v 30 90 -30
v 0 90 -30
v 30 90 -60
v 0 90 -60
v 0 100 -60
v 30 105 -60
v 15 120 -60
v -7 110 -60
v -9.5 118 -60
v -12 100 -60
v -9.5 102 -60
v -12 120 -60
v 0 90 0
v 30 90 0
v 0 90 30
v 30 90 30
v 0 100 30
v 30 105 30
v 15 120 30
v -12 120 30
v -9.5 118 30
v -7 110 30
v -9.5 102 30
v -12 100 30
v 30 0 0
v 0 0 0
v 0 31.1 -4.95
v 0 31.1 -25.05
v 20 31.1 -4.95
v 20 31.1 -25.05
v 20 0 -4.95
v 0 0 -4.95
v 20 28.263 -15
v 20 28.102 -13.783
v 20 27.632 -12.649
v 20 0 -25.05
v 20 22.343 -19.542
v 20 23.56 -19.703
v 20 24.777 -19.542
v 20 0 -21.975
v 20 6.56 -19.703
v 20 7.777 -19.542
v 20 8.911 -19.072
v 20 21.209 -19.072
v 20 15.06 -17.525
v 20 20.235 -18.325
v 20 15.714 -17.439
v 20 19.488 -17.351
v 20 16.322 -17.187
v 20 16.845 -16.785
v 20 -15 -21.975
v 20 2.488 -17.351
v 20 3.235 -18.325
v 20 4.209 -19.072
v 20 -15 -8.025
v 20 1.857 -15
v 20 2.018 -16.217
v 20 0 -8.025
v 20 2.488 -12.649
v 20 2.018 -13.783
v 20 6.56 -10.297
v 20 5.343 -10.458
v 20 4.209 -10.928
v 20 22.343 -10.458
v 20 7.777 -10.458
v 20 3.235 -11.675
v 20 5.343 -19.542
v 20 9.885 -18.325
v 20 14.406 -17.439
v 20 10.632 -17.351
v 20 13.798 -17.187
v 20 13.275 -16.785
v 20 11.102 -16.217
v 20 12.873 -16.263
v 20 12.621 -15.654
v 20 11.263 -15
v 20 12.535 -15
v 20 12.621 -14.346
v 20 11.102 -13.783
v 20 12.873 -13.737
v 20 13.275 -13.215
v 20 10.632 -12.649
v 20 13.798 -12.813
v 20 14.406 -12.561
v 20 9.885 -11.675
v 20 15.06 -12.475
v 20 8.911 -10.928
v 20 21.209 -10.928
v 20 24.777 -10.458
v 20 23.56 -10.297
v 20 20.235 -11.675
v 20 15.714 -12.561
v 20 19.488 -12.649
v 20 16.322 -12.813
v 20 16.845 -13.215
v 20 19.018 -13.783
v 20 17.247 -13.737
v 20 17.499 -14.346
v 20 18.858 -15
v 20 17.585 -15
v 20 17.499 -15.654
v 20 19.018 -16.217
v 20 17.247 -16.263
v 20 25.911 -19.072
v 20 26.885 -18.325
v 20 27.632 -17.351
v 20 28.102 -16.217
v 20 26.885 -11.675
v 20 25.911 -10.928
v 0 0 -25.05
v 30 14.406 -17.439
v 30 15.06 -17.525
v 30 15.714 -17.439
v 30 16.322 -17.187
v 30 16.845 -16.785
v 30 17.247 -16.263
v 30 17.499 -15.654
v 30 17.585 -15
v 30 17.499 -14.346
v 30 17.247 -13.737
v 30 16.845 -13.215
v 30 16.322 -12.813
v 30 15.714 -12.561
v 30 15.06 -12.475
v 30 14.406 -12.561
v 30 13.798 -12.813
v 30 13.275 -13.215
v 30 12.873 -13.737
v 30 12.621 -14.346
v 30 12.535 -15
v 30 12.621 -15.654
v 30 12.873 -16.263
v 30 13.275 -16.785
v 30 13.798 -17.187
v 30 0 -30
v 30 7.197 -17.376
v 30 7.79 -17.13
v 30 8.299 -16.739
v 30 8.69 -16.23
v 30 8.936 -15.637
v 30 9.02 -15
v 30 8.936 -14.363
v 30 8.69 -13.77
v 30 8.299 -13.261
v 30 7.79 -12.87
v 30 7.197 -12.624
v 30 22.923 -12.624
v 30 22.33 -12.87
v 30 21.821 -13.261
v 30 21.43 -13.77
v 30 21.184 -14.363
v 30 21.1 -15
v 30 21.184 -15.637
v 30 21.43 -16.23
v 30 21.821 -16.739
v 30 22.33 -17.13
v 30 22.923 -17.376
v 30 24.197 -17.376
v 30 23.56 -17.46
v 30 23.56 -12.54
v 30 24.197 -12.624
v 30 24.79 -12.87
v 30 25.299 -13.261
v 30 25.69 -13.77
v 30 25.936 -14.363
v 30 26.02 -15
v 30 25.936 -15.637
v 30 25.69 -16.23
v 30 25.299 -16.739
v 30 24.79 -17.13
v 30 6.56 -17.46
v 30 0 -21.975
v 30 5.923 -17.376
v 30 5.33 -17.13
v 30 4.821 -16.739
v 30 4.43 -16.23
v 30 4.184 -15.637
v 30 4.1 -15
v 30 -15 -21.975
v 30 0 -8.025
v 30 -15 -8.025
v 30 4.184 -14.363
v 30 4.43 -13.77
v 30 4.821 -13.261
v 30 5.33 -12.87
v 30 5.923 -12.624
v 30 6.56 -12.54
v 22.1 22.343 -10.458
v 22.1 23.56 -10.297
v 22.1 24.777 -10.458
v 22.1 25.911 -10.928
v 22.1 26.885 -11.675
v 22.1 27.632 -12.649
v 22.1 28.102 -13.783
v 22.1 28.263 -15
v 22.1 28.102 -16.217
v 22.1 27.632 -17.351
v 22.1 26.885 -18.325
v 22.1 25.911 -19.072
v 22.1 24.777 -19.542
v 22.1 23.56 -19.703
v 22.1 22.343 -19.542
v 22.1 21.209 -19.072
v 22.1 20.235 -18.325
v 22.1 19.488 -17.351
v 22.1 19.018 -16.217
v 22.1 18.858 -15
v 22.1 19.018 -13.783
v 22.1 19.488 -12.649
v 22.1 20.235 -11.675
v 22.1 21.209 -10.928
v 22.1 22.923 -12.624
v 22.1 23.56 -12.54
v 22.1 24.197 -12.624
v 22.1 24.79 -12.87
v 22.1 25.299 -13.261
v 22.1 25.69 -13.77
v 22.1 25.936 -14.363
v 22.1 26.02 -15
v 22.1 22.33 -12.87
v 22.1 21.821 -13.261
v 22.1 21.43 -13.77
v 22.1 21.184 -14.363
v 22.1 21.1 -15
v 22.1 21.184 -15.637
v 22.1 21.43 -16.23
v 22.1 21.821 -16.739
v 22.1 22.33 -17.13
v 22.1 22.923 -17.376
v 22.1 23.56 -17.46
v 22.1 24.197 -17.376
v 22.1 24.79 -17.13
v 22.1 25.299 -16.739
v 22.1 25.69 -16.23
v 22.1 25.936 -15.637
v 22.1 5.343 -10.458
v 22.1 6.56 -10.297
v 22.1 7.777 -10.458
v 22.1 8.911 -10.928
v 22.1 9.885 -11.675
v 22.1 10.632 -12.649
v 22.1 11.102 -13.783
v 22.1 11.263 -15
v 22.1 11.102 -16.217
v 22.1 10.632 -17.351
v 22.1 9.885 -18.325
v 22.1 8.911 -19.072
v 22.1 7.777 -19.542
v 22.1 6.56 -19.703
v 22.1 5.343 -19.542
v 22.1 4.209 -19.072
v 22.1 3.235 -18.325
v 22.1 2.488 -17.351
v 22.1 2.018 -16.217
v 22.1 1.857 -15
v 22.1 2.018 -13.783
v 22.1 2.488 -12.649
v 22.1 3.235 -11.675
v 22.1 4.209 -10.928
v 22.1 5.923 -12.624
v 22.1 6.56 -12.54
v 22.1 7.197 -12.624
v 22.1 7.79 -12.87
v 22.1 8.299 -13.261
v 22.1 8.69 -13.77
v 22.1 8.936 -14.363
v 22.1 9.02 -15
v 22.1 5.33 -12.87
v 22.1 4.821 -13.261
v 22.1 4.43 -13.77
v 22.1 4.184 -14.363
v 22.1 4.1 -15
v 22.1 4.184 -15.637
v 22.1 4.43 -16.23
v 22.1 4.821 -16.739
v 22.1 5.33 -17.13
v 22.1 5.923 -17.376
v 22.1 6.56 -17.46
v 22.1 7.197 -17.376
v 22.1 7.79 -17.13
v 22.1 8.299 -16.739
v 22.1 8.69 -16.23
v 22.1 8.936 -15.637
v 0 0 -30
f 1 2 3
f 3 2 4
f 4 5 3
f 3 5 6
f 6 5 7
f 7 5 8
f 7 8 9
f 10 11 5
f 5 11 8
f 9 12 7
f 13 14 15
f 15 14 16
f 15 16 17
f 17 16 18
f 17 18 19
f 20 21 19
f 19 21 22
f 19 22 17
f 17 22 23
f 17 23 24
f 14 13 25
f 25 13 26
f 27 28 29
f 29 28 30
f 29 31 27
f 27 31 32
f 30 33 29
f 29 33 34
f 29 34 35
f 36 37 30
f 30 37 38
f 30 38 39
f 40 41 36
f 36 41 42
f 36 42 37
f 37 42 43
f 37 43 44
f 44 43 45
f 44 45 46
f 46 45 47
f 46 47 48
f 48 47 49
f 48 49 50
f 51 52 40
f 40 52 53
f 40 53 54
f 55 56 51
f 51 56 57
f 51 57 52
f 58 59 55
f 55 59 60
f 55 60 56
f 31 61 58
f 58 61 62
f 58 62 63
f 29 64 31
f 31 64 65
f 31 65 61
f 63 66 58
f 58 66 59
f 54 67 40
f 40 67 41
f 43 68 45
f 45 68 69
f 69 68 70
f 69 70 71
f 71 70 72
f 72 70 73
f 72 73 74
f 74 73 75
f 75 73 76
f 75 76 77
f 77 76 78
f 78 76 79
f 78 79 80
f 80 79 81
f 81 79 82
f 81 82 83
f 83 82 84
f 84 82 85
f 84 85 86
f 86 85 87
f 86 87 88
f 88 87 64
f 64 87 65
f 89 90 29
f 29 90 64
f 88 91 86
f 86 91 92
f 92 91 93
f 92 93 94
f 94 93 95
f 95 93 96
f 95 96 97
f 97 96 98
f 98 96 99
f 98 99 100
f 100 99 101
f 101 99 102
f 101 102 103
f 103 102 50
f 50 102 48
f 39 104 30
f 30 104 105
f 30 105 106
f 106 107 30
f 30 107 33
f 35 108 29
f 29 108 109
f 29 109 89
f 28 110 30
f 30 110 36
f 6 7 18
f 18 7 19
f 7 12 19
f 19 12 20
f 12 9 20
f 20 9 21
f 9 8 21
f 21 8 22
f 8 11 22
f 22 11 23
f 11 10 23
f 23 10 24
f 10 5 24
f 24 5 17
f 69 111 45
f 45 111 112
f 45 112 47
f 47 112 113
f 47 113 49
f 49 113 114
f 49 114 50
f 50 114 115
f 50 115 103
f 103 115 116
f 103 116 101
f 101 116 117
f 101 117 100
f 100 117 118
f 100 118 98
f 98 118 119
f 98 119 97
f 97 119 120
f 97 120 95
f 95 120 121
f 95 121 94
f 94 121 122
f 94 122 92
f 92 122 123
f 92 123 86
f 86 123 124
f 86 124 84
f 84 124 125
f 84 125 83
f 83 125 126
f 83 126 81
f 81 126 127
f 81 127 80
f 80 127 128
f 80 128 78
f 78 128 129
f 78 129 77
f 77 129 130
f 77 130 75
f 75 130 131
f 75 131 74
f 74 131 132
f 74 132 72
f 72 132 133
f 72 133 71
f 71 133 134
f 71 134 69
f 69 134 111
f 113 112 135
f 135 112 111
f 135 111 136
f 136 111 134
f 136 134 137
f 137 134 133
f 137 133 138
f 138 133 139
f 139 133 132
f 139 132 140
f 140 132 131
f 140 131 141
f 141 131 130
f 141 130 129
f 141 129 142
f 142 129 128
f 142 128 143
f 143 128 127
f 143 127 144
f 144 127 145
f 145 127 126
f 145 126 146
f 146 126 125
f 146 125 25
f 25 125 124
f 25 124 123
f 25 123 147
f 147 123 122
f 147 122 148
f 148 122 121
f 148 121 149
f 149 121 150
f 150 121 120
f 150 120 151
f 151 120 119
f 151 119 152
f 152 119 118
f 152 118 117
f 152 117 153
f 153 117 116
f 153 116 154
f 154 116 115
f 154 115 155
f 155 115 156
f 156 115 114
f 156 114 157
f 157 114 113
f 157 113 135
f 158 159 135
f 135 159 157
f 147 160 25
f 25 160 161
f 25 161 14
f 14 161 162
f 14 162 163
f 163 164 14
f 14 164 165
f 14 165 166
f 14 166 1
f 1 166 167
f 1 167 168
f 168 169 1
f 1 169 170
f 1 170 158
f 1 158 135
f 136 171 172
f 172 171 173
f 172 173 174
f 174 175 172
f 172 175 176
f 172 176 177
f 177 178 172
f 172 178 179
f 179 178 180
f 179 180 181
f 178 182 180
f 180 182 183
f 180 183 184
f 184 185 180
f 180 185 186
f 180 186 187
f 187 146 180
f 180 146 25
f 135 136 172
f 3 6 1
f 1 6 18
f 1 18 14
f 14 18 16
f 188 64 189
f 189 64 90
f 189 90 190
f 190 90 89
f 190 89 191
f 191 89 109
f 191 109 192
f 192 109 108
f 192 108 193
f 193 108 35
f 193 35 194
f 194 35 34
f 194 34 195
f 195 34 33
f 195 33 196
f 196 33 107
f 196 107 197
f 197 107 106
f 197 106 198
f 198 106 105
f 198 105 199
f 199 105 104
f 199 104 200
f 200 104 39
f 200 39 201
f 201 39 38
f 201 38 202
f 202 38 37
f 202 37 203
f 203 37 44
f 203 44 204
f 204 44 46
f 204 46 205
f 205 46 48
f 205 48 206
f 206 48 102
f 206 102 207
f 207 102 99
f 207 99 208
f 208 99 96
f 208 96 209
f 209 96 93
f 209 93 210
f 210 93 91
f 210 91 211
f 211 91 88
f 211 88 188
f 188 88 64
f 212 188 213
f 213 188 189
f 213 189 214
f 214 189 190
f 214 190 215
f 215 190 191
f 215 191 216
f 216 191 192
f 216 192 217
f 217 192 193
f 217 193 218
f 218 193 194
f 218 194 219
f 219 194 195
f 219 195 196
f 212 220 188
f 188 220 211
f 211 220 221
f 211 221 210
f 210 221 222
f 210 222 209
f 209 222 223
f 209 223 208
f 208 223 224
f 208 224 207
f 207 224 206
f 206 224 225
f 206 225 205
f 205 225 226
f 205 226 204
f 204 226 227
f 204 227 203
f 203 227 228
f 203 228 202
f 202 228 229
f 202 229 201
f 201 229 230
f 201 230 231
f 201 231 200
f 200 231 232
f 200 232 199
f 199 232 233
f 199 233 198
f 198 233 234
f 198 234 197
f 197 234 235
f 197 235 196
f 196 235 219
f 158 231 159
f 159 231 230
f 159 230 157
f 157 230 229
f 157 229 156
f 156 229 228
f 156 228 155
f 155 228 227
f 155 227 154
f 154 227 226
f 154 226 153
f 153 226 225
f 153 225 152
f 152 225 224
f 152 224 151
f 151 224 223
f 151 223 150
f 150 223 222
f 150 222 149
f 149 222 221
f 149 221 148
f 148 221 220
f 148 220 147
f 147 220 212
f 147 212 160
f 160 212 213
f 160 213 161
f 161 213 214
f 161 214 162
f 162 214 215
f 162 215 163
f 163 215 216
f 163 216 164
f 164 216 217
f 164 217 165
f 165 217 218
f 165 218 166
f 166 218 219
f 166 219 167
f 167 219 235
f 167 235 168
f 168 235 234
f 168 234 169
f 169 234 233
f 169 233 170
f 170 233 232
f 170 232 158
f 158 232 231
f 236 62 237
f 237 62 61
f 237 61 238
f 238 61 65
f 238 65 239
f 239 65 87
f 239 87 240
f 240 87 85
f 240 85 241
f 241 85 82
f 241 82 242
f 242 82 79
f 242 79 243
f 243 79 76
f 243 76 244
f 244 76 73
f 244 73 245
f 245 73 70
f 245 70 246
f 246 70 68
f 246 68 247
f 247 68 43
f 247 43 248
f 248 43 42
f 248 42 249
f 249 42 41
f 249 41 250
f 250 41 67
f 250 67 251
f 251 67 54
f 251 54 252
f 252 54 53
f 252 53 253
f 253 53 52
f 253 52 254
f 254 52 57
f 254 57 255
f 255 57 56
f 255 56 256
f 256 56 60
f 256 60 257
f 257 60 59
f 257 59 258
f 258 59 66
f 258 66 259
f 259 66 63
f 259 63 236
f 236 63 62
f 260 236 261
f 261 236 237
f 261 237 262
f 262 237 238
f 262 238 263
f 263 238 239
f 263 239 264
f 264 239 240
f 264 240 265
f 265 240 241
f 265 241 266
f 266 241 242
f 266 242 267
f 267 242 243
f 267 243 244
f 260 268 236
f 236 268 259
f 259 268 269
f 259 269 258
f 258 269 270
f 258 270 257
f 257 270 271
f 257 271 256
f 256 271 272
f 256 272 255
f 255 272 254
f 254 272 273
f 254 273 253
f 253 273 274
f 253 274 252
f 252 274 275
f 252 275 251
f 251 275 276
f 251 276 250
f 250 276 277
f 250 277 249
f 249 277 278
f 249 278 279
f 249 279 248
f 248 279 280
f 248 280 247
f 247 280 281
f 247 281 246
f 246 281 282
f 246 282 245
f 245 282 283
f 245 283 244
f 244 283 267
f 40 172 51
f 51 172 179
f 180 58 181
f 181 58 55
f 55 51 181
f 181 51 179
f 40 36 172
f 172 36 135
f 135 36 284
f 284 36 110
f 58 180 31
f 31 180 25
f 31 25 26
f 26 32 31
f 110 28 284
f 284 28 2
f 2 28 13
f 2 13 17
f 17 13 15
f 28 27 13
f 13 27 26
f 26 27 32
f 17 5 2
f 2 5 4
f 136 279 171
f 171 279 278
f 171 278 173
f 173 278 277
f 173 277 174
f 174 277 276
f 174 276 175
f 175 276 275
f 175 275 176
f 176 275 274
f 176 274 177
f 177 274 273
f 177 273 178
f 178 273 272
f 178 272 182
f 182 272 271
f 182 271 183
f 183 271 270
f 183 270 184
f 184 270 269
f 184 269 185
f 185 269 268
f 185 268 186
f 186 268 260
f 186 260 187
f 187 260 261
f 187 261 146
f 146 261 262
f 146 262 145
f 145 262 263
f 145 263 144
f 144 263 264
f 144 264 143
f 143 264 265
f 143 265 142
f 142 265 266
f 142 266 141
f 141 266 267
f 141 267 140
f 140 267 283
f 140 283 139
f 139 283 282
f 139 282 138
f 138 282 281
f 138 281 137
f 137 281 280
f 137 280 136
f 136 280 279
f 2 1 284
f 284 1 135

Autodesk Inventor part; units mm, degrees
ref_plane "YZ Plane" through (0, 0, 0) normal (1, 0, 0) x (0, 1, 0)
ref_plane "XZ Plane" through (0, 0, 0) normal (0, 1, 0) x (-1, 0, 0)
sketch "Sketch1" plane through (0, 0, 0) normal (0, 0, 1) x (1, 0, 0)
  line L0 (0, 0) -> (25, 0)
  line L1 (25, 0) -> (25, 40)
  line L2 (25, 40) -> (0, 40)
  line L3 (0, 40) -> (0, 0)
  dimension "d1" = 25
  dimension "d2" = 40
  dimension "d3" = 25
extrude "Extrusion1" add sketch "Sketch1" against normal blind 30
sketch "Sketch2" plane through (25, 0, 0) normal (1, 0, 0) x (0, 0, -1)
  line L0 (0, 0) -> (30, 0) projected
  circle A0 centre (15, 6.56) radius 2.46
extrude "Extrusion2" cut sketch "Sketch2" against normal blind 30
sketch "Sketch3" plane through (0, 0, 0) normal (-1, 0, 0) x (0, 0, 1)
  line L0 (0, 0) -> (-30, 0) projected
  line L1 (-25.05, 0) -> (-4.95, 0)
  line L2 (-4.95, 0) -> (-4.95, 33.12)
  line L3 (-4.95, 33.12) -> (-25.05, 33.12)
  line L4 (-25.05, 33.12) -> (-25.05, 0)
  dimension "d11" = 20.1
extrude "Extrusion3" cut sketch "Sketch3" against normal blind 20
sketch "Sketch4" plane through (0, 0, 0) normal (0, -1, 0) x (1, 0, 0)
  line L0 (20, -4.95) -> (20, -25.05) projected
  line L1 (20, -15) -> (25, -15)
  line L2 (25, 0) -> (25, -30) projected
  line L3 (20, -8.025) -> (25, -8.025)
  line L4 (25, -8.025) -> (25, -21.975)
  line L5 (25, -21.975) -> (20, -21.975)
  line L6 (20, -21.975) -> (20, -8.025)
  line L7 (20, -8.025) -> (25, -21.975) construction
  line L8 (25, -8.025) -> (20, -21.975) construction
  line L9 (25, -12.54) -> (25, -17.46) projected
  point P0 (0, 0)
  point P1 (22.5, -15)
  dimension "d14" = 13.95
extrude "Extrusion4" add sketch "Sketch4" along normal blind 15
sketch "Sketch5" plane through (20, 0, 0) normal (-1, 0, 0) x (0, 0, 1)
  circle A0 centre (-15, 6.56) radius 2.46 projected
  circle A1 centre (-15, 6.56) radius 4.7025
  circle A2 centre (-15, 6.56) radius 2.46 projected
  circle A3 centre (-15, 6.56) radius 2.46
  point P0 (0, 0)
  dimension "d17" = 9.405
extrude "Extrusion5" cut sketch "Sketch5" against normal blind 2.1
sketch "Sketch6" plane through (25, 0, 0) normal (1, 0, 0) x (0, 0, -1)
  circle A0 centre (15, 6.56) radius 4.7025 projected
  line L0 (15, 6.56) -> (15, 23.56)
  circle A1 centre (15, 23.56) radius 2.46
  point P0 (0, 0)
  dimension "d20" = 17
  dimension "d21" = 4.92
extrude "Extrusion6" cut sketch "Sketch6" against normal blind 10 contours A1
sketch "Sketch7" plane through (20, 0, 0) normal (-1, 0, 0) x (0, 0, 1)
  circle A0 centre (-15, 23.56) radius 2.46 projected
  circle A1 centre (-15, 23.56) radius 4.7025
  point P0 (0, 0)
  dimension "d24" = 9.405
extrude "Extrusion7" cut sketch "Sketch7" against normal blind 2.1
sketch "Sketch9" plane through (25, 0, 0) normal (1, 0, 0) x (0, 0, -1)
  circle A0 centre (15, 6.56) radius 2.46 projected
  circle A1 centre (15, 6.56) radius 2.46
  circle A2 centre (15, 23.56) radius 2.46 projected
  circle A3 centre (15, 23.56) radius 2.46
  line L0 (30, 40) -> (30, 0) projected
  line L1 (30, 0) -> (30, 40)
  line L2 (30, 40) -> (0, 40)
  line L3 (0, 40) -> (0, 0)
  line L4 (0, 0) -> (8.025, 0) projected
  line L5 (21.975, 0) -> (21.975, -15)
  line L6 (21.975, -15) -> (8.025, -15)
  line L7 (8.025, -15) -> (8.025, 0)
  line L8 (0, 0) -> (8.025, 0)
  line L9 (21.975, 0) -> (30, 0)
extrude "Extrusion8" add sketch "Sketch9" along normal blind 5
sketch "Sketch10" plane through (0, 40, 0) normal (0, 1, 0) x (1, 0, 0)
  line L0 (0, 30) -> (30, 30) projected
  line L1 (30, 0) -> (0, 0) projected
  line L2 (0, 30) -> (30, 30)
  line L3 (30, 30) -> (30, 0)
  line L4 (30, 0) -> (0, 0)
  line L5 (0, 0) -> (0, 30)
extrude "Extrusion9" add sketch "Sketch10" along normal blind 30
sketch "Sketch12" plane through (30, 0, 0) normal (1, 0, 0) x (0, 0, -1)
  circle A0 centre (15, 6.56) radius 2.46 projected
  line L0 (15, 6.56) -> (15, 15.06)
  circle A1 centre (15, 15.06) radius 2.525
  point P0 (0, 0)
  dimension "d31" = 8.5
  dimension "d33" = 5.05
extrude "Extrusion10" cut sketch "Sketch12" against normal blind 30 contours A1
sketch "Sketch14" plane through (0, 0, 0) normal (0, 0, 1) x (1, 0, 0)
  line L0 (30, 70) -> (0, 70) projected
  line L1 (0, 70) -> (0, 85)
  line L2 (30, 0) -> (30, 70) projected
  line L3 (30, 100) -> (30, 70)
  line L4 (-12, 120) -> (15, 120)
  line L5 (-9.5, 118) -> (-7, 110)
  line L6 (-9.5, 118) -> (-12, 120)
  line L7 (-9.5, 102) -> (-7, 110)
  line L8 (-9.5, 102) -> (-12, 100)
  line L9 (30, 105) -> (15, 120)
  line L10 (30, 105) -> (30, 100)
  line L11 (0, 85) -> (0, 100)
  line L12 (0, 100) -> (-12, 100)
  point P0 (0, 0)
  dimension "d60" = 20
  dimension "d64" = 12
extrude "Extrusion12" add sketch "Sketch14" against normal blind 30
sketch "Sketch15" plane through (0, 0, -25.05) normal (-1, 0, 0) x (0, 0, 1)
  line L0 (0, 33.12) -> (20.1, 33.12) projected
  line L1 (20.1, 33.12) -> (20.1, 0) projected
  line L2 (0, 33.12) -> (20.1, 33.12)
  line L3 (20.1, 33.12) -> (20.1, 31.1)
  line L4 (20.1, 31.1) -> (0, 31.1)
  line L5 (0, 31.1) -> (0, 33.12)
  point P0 (25.05, 0)
  dimension "d57" = 2.02
extrude "Extrusion13" add sketch "Sketch15" against normal blind 20
sketch "Sketch20" plane through (0, 0, 0) normal (0, 0, 1) x (1, 0, 0)
  line L0 (0, 100) -> (-12, 100) projected
  line L1 (0, 100) -> (-12, 100)
  line L2 (-12, 100) -> (-9.5, 102) projected
  line L3 (-12, 100) -> (-9.5, 102)
  line L4 (-9.5, 102) -> (-7, 110) projected
  line L5 (-9.5, 102) -> (-7, 110)
  line L6 (-7, 110) -> (-9.5, 118) projected
  line L7 (-7, 110) -> (-9.5, 118)
  line L8 (-9.5, 118) -> (-12, 120) projected
  line L9 (-9.5, 118) -> (-12, 120)
  line L10 (-12, 120) -> (15, 120) projected
  line L11 (-12, 120) -> (15, 120)
  line L12 (15, 120) -> (30, 105) projected
  line L13 (15, 120) -> (30, 105)
  line L14 (30, 105) -> (30, 90)
  line L15 (30, 0) -> (30, 105) projected
  line L16 (30, 90) -> (0, 90)
  line L17 (0, 90) -> (0, 100)
  point P0 (0, 0)
  dimension "d65" = 15
  dimension "d66" = 30
extrude "Extrusion14" add sketch "Sketch20" along normal blind 30
ref_plane "Work Plane1" through (0, 0, -15) normal (0, 0, 1) x (1, 0, 0)
mirror "Mirror1" about plane through (0, 0, -15) normal (0, 0, 1) of "Extrusion14"
properties part number "rec_b_16mm_x_90mm"
